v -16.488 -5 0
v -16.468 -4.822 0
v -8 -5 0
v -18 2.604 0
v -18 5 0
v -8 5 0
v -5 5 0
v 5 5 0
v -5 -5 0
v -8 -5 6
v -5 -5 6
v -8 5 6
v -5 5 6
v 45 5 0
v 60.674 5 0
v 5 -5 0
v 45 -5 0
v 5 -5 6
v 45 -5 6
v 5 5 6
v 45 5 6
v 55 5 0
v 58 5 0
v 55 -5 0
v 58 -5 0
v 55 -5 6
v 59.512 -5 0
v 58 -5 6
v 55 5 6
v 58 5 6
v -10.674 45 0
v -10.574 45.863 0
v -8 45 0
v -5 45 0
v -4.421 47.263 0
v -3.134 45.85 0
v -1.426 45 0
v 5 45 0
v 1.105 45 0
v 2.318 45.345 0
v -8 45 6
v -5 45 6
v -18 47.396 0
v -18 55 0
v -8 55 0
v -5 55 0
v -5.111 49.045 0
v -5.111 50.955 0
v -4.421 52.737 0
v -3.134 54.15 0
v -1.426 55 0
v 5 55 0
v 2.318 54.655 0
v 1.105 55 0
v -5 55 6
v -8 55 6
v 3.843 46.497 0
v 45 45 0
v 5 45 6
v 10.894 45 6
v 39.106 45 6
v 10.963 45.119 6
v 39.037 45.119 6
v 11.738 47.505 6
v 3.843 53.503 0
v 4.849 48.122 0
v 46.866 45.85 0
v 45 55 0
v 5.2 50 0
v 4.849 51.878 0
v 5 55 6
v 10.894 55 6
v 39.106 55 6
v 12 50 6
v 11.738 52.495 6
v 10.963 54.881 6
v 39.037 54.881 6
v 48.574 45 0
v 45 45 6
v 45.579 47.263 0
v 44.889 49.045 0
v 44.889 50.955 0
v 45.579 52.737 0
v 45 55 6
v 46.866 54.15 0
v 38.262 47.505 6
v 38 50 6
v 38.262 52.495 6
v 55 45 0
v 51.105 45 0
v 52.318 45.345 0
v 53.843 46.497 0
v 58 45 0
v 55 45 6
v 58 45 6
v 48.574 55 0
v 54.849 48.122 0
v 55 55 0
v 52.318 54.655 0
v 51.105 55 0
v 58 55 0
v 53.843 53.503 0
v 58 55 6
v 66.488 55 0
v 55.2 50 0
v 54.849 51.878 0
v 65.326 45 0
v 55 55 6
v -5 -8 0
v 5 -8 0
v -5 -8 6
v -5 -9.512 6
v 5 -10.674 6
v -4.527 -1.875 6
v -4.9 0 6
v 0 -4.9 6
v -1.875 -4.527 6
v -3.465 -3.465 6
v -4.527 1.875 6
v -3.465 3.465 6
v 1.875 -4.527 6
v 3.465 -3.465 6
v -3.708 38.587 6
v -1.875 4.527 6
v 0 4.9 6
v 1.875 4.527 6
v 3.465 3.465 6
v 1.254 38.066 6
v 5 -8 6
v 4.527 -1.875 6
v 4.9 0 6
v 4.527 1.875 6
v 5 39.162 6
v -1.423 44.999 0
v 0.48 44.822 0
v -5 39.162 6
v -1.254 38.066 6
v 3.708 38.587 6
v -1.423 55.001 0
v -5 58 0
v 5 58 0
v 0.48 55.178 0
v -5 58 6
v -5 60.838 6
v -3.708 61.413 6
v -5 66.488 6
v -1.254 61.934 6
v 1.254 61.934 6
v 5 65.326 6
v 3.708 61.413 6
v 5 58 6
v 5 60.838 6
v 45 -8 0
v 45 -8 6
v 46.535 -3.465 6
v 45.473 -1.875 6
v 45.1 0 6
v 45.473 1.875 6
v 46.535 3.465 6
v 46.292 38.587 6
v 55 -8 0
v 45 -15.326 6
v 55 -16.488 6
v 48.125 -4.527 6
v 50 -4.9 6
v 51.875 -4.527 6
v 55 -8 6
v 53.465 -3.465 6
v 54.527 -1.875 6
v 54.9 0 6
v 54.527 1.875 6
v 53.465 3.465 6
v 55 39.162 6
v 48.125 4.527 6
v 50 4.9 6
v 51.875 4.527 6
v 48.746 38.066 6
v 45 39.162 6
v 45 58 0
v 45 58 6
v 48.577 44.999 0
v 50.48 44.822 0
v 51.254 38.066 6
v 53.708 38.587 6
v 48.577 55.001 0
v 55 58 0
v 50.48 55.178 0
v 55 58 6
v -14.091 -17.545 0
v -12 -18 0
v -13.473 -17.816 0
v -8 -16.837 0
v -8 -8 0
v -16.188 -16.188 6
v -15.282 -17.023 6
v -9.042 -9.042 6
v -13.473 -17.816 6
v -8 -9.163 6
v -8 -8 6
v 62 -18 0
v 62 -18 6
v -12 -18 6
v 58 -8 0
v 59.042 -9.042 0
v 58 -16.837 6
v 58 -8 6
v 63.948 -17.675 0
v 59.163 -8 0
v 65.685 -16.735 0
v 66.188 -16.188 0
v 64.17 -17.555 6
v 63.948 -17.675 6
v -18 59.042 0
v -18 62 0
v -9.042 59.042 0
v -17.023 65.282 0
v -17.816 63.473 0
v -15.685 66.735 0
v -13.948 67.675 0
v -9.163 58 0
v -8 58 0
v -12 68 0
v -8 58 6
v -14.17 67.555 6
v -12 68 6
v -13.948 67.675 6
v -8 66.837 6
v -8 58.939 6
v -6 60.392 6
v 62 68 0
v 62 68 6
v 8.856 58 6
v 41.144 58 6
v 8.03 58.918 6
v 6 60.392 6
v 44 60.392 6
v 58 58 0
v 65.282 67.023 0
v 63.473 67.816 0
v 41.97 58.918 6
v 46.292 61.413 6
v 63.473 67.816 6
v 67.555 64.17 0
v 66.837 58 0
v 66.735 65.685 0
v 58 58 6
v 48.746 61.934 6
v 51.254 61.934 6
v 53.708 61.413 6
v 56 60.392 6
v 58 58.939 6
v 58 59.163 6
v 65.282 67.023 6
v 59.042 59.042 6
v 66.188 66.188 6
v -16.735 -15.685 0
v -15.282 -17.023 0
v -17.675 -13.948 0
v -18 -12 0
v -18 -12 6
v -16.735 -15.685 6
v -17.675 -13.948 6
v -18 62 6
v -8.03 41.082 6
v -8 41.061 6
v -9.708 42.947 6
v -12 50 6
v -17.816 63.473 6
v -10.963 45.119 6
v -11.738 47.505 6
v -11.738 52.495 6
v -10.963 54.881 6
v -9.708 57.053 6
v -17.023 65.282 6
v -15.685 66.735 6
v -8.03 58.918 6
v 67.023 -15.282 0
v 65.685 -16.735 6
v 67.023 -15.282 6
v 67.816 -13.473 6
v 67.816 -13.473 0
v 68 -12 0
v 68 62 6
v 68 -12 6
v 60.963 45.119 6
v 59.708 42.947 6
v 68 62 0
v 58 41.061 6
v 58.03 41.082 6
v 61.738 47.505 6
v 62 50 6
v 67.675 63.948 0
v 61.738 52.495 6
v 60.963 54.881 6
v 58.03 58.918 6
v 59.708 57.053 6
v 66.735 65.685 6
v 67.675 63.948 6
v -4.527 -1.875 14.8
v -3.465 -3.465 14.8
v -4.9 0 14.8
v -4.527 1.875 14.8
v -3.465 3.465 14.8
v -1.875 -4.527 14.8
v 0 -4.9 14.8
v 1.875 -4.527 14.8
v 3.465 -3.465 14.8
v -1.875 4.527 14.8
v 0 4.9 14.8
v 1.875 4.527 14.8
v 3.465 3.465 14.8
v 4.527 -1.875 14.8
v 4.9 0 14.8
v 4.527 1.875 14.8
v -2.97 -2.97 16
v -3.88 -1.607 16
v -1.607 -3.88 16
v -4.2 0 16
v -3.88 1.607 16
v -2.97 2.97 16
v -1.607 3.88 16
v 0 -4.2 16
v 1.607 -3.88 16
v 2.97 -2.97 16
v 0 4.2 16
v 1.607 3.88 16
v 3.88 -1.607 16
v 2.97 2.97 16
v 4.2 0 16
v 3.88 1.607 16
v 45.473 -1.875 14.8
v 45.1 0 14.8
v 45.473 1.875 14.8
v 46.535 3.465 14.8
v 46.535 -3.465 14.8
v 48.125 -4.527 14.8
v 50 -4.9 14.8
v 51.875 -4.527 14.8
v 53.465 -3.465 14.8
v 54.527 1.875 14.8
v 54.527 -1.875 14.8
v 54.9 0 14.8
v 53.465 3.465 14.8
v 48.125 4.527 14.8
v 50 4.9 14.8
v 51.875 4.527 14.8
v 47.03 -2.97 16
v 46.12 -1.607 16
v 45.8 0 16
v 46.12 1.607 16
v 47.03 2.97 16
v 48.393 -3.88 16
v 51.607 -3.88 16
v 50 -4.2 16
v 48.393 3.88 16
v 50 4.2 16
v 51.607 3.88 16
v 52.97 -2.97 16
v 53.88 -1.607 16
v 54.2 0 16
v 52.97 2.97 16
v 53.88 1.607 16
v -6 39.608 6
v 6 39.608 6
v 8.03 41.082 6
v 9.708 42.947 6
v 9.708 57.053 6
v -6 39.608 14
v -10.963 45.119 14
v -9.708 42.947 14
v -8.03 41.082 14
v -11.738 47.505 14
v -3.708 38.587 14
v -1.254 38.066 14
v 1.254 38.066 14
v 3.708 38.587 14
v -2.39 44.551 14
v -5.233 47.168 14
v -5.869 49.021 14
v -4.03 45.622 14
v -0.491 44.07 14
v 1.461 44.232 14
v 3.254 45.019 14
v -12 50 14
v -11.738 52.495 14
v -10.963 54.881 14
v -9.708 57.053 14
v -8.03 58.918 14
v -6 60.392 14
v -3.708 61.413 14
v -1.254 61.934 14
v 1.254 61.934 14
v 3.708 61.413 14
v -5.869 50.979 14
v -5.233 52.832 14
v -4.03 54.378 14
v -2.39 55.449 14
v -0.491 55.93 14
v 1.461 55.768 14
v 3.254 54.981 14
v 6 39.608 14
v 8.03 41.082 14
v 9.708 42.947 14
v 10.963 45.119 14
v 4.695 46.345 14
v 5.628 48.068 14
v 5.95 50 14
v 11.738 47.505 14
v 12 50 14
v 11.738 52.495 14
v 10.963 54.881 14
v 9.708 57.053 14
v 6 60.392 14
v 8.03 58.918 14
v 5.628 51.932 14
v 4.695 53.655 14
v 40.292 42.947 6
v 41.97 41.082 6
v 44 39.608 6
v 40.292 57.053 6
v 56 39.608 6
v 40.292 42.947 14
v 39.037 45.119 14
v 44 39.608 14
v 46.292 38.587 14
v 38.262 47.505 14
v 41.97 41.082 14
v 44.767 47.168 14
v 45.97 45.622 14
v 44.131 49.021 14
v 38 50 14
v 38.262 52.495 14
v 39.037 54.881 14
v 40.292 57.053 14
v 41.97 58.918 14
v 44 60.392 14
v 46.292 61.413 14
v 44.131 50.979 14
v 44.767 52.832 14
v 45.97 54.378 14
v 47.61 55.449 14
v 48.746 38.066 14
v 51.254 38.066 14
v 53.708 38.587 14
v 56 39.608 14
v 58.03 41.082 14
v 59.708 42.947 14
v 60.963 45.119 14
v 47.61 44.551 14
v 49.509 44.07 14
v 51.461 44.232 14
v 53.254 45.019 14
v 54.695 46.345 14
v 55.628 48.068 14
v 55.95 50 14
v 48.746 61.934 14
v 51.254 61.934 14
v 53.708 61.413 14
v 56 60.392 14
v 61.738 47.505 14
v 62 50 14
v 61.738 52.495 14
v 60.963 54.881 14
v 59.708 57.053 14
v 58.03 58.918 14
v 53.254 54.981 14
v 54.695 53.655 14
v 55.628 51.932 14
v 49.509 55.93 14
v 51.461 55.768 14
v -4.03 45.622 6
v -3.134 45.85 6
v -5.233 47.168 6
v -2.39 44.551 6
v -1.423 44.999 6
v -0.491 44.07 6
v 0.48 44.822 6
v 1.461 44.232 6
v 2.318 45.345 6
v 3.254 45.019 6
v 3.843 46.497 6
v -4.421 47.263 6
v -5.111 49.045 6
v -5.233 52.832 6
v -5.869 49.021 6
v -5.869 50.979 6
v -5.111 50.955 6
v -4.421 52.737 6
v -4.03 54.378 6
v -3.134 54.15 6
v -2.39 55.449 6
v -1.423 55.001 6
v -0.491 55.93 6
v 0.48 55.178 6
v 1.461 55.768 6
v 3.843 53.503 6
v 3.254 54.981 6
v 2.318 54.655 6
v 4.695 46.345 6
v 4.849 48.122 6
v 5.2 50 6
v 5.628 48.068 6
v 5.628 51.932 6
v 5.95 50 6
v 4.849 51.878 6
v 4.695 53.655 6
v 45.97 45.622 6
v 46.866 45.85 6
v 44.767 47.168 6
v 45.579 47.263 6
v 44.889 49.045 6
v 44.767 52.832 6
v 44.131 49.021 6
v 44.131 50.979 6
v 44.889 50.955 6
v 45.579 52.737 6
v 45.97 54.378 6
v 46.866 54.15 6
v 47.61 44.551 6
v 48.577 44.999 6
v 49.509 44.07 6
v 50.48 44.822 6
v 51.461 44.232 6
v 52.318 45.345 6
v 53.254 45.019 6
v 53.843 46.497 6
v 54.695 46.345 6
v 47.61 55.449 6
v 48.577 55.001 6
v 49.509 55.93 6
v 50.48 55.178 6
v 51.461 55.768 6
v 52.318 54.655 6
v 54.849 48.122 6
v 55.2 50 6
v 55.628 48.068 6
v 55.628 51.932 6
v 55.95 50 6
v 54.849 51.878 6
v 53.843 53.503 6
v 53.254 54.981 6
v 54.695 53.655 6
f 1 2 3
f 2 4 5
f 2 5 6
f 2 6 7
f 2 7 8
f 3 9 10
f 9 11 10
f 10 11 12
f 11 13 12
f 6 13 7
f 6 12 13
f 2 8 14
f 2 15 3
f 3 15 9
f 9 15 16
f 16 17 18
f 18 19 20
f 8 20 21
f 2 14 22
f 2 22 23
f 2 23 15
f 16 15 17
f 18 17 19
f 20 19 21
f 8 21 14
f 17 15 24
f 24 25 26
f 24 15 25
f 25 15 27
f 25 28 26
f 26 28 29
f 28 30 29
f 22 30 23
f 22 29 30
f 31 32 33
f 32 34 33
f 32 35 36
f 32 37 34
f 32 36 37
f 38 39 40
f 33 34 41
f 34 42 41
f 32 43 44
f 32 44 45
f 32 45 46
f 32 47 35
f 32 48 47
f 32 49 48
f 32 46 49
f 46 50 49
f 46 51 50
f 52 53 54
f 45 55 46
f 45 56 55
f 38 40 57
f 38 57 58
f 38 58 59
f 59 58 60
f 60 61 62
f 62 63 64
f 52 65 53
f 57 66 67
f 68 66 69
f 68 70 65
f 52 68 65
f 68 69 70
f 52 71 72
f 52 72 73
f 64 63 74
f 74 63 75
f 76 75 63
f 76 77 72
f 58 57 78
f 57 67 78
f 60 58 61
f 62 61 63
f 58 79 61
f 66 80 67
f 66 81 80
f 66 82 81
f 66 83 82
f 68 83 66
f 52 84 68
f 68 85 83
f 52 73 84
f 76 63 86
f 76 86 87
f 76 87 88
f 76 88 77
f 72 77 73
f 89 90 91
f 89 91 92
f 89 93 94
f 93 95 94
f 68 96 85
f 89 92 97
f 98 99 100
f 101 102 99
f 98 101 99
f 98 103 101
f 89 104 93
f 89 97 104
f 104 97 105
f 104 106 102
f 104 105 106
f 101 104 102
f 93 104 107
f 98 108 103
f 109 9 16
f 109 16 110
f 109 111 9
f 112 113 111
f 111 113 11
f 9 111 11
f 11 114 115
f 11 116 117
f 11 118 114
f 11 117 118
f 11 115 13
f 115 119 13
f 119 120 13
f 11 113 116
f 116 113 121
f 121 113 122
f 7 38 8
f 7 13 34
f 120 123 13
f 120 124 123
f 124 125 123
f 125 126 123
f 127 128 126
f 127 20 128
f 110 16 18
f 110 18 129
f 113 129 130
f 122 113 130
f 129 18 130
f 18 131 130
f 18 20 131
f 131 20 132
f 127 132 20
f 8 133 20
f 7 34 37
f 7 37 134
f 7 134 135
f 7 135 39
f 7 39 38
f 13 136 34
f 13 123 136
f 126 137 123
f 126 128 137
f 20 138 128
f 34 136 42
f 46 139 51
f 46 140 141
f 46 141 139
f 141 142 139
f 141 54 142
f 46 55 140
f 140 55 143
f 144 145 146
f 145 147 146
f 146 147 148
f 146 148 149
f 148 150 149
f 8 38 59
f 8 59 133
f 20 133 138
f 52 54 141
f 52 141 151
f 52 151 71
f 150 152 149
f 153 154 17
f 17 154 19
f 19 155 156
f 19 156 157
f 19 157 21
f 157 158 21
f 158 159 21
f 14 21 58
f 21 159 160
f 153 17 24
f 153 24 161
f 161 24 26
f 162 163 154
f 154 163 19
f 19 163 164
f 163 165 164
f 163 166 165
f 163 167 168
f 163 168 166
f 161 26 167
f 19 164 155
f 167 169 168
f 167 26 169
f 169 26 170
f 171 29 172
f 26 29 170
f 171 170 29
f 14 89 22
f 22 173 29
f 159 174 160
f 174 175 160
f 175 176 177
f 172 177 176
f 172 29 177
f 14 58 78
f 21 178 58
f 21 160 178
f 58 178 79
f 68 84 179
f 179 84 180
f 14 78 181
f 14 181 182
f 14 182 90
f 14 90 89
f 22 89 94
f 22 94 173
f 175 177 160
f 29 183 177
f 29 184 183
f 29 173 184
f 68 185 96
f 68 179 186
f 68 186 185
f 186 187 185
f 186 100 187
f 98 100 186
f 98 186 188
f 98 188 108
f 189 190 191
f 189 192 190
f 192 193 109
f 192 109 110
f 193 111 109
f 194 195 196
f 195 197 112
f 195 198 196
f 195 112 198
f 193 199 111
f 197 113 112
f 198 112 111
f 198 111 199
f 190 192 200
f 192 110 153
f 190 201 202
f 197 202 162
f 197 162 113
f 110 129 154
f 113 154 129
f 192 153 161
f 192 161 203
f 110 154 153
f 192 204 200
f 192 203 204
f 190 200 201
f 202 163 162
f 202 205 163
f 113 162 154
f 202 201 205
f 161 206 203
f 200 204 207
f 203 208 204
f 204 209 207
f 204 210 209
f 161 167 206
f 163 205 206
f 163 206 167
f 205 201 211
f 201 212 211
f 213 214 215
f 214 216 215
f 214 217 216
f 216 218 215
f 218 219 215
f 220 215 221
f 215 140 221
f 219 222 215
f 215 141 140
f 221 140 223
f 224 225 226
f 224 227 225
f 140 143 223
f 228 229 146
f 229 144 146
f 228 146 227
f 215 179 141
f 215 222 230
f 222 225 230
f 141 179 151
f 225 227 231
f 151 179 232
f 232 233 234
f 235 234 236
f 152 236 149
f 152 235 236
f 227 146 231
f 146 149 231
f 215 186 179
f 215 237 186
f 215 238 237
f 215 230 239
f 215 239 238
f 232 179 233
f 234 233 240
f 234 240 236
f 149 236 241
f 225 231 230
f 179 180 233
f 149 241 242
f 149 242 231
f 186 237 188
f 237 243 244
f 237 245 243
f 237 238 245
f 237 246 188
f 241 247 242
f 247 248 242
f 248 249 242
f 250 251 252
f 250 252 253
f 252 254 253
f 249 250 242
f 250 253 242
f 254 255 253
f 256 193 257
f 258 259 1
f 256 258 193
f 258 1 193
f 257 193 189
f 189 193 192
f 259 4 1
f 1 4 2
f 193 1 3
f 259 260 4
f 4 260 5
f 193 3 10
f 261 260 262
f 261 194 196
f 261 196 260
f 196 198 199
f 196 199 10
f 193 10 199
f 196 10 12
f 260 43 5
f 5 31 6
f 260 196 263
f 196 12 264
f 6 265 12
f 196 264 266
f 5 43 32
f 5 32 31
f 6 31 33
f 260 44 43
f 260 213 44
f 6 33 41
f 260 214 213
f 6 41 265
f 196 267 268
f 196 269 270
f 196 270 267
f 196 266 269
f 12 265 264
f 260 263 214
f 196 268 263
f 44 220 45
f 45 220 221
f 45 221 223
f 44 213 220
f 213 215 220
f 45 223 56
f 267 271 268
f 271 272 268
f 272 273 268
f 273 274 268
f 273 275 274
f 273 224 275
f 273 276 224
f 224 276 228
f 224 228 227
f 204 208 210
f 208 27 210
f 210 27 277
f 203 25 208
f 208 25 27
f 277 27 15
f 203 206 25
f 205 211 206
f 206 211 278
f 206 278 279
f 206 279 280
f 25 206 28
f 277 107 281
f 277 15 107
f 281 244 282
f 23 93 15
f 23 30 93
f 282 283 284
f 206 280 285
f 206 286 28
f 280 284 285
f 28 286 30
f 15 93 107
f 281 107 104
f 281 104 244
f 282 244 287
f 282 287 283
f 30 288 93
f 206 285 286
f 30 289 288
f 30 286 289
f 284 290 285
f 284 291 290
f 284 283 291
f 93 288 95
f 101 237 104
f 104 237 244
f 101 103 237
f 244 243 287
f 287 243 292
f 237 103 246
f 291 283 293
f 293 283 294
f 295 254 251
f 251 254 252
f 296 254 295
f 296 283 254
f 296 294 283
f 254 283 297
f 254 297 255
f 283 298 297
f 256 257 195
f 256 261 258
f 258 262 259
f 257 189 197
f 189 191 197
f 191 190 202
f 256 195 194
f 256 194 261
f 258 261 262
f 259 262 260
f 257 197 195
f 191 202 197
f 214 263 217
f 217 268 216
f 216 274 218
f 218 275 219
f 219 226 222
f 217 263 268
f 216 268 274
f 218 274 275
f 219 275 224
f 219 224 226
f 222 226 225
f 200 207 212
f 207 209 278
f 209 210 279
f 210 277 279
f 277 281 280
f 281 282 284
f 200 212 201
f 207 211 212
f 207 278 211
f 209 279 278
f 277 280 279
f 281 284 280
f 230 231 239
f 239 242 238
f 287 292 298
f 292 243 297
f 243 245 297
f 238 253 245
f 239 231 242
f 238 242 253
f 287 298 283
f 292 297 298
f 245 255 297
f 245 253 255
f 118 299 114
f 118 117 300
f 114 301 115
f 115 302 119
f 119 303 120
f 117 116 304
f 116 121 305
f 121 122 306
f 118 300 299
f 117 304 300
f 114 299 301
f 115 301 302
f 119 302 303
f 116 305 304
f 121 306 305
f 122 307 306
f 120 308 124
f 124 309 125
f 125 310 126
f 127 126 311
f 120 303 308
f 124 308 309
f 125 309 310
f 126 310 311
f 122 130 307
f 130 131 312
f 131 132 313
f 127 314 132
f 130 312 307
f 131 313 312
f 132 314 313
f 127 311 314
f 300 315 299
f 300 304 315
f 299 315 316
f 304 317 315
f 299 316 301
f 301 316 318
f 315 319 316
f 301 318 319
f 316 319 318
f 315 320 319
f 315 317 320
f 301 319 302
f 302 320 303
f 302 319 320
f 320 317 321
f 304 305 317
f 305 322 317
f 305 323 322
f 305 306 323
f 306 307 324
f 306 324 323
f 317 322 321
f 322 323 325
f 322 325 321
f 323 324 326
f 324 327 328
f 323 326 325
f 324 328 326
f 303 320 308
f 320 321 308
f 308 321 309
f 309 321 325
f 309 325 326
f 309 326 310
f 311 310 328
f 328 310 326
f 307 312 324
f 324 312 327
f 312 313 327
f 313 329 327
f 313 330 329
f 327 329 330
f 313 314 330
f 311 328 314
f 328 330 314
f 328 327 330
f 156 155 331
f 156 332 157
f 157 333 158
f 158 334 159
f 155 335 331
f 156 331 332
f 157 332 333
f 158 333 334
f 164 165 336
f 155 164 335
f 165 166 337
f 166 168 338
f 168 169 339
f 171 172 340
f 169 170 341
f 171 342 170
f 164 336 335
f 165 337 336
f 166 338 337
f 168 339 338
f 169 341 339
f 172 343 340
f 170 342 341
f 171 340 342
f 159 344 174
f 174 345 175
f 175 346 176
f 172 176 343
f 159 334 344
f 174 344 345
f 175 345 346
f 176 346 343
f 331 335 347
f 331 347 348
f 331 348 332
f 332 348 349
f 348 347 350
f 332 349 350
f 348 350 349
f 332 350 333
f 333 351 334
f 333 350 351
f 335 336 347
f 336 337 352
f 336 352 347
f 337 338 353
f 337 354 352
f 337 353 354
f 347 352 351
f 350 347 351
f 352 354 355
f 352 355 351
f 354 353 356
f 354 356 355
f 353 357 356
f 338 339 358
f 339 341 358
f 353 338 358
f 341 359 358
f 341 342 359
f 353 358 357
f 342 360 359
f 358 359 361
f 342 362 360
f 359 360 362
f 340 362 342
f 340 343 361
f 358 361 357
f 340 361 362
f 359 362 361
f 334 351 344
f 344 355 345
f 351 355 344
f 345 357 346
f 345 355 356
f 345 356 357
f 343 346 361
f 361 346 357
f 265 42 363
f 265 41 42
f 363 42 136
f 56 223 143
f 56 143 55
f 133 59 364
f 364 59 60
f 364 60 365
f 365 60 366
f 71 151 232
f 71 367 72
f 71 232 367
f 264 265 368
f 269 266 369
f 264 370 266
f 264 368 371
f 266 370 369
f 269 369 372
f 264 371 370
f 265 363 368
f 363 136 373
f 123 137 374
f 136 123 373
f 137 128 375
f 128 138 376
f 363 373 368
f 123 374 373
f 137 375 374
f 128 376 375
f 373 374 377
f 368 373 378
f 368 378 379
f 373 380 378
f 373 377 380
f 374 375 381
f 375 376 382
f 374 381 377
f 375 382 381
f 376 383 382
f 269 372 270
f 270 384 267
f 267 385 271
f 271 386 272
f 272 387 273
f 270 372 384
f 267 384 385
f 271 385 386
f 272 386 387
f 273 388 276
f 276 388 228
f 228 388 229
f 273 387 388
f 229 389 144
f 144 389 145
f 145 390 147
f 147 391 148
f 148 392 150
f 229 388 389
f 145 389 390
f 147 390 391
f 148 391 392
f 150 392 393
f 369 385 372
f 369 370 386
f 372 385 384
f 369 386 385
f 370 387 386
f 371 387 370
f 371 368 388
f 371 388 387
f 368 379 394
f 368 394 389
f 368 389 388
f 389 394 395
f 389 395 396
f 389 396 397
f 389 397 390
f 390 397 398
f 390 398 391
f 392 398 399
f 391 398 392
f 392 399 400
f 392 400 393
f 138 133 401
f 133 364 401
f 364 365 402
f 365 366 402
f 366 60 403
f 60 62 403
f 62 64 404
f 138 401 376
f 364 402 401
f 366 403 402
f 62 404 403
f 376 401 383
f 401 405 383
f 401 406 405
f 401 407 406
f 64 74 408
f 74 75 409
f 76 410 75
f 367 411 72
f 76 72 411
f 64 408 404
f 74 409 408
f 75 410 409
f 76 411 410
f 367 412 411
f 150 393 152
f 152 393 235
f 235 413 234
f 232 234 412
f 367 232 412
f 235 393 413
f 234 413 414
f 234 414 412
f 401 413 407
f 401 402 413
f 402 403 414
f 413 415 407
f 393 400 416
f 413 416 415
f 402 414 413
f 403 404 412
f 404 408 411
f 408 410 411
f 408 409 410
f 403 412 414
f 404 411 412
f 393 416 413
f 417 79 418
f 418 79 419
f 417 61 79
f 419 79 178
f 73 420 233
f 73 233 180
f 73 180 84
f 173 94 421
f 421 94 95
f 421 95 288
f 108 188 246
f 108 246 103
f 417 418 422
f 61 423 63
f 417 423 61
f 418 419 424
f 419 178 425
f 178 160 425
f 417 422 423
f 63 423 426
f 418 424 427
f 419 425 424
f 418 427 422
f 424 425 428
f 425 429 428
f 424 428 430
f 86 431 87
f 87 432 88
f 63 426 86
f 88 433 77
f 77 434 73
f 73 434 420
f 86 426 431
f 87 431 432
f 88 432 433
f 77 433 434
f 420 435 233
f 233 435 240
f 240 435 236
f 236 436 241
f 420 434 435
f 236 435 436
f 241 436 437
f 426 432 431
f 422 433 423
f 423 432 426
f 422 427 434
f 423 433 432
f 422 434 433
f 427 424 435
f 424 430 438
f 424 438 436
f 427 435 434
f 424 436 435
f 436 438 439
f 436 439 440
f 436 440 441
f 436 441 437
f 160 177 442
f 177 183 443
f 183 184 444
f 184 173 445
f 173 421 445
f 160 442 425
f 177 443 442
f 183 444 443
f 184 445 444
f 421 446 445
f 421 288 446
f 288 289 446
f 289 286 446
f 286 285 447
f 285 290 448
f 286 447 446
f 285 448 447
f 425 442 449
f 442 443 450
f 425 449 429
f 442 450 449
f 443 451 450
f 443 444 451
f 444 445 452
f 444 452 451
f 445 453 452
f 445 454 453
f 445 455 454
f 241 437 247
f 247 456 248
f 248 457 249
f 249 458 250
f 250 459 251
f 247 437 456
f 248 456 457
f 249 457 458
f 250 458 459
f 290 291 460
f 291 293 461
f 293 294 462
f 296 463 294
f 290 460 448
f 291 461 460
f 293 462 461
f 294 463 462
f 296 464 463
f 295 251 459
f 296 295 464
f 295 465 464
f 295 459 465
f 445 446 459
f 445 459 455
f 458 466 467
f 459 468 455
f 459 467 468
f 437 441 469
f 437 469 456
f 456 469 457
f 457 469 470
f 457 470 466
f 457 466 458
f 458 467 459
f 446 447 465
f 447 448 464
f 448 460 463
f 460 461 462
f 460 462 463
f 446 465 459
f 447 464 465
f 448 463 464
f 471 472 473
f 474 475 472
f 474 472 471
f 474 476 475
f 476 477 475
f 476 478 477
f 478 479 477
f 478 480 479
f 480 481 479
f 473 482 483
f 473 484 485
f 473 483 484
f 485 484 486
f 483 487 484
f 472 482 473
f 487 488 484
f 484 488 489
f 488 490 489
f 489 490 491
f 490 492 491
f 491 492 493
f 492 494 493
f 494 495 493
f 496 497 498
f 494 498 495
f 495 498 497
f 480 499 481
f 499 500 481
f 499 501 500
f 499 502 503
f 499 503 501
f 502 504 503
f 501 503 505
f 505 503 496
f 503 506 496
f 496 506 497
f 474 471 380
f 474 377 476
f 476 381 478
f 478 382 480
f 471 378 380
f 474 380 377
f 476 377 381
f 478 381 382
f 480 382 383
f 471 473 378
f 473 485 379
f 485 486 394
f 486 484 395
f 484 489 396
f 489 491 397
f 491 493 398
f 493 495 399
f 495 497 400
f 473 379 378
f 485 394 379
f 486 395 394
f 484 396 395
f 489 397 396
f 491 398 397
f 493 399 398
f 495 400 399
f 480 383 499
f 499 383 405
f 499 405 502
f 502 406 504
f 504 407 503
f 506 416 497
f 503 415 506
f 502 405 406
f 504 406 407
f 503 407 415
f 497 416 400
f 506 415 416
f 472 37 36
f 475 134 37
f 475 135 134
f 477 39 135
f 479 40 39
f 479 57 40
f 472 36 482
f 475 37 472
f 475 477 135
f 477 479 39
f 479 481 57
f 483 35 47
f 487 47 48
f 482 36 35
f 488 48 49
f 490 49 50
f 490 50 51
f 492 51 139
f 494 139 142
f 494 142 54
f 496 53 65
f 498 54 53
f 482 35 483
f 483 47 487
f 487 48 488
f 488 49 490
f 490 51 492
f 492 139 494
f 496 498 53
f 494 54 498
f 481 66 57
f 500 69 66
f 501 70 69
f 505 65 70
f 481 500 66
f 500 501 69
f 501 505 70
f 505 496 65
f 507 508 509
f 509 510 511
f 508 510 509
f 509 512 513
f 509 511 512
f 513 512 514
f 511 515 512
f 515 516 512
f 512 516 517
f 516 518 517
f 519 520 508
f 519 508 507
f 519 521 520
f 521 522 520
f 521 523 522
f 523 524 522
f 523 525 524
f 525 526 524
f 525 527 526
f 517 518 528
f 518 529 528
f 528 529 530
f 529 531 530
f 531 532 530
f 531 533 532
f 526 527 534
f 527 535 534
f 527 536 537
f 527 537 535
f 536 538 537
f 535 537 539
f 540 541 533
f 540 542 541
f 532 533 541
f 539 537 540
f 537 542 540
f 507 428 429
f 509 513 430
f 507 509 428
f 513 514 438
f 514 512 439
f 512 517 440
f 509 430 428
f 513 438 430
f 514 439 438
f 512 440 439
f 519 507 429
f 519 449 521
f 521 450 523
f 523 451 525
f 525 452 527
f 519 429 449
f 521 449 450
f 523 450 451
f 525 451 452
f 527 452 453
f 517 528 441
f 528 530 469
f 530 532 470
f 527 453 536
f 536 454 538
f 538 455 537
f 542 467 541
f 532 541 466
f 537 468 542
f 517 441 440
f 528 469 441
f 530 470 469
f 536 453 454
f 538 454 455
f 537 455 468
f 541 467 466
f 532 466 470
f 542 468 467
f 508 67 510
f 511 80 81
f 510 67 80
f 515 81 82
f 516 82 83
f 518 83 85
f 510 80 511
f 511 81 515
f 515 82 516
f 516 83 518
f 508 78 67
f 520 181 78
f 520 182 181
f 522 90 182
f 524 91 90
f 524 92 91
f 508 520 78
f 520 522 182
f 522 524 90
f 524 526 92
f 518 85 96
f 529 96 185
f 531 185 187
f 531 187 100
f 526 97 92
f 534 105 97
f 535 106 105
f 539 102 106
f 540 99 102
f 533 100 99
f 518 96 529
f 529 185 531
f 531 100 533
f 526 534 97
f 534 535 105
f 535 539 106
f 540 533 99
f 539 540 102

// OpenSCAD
// file: frame.scad
// ============================================================================
//  RIBBED FRAME HELPER — replaces a solid plate with border + grid ribs.
//  Same stiffness where it matters (bosses clamped flat), ~half the plastic.
// ============================================================================

rib_w    = 10;   // [mm] grid rib width
border_w = 10;   // [mm] perimeter border width

// Plan-view rounded rectangle prism — trims vertical edges to radius r.
// Inset polygon + offset(r) keeps the flat edges on x0/x1/y0/y1.
module rounded_outline(x0, y0, x1, y1, h, r = corner_r) {
    translate([0, 0, -0.05])
        linear_extrude(h + 0.1)
            offset(r = r)
                polygon([[x0 + r, y0 + r],
                         [x1 - r, y0 + r],
                         [x1 - r, y1 - r],
                         [x0 + r, y1 - r]]);
}

// Rounded box helper for external edges. Keep radii small to preserve fits.
module rounded_box(size, r = edge_break) {
    // 2D rounded footprint extruded to preserve exact outer dimensions.
    translate([0,0,-size[2]/2]) linear_extrude(size[2])
        offset(r=r) square([size[0]-2*r,size[1]-2*r],center=true);
}

// x0,y0,x1,y1 = plate extent; xs/ys = station coordinates the ribs run through
module rib_plate(x0, y0, x1, y1, xs, ys) {
    intersection() {
        union() {
        // border ring
        translate([(x0+x1)/2, y0+border_w/2, base_t/2]) rounded_box([x1-x0,border_w,base_t]);
        translate([(x0+x1)/2, y1-border_w/2, base_t/2]) rounded_box([x1-x0,border_w,base_t]);
        translate([x0+border_w/2, (y0+y1)/2, base_t/2]) rounded_box([border_w,y1-y0,base_t]);
        translate([x1-border_w/2, (y0+y1)/2, base_t/2]) rounded_box([border_w,y1-y0,base_t]);
        // ribs through each station row/column
        for (y = ys)
            translate([(x0+x1)/2, y, base_t/2])
                rounded_box([x1-x0, rib_w, base_t]);
        for (x = xs)
            translate([x, (y0+y1)/2, base_t/2])
                rounded_box([rib_w, y1-y0, base_t]);
        }
        rounded_outline(x0, y0, x1, y1, base_t);
    }
}

module pin_post(x, y) {
    translate([x, y, base_t - pin_embed]) {
        cylinder(d = pin_d, h = pin_embed + pin_len - chamfer_h);
        translate([0, 0, pin_embed + pin_len - chamfer_h])
            cylinder(d1 = pin_d, d2 = pin_d - 2 * chamfer_d, h = chamfer_h);
    }
}

module guide_boss(x, y) {
    translate([x, y, base_t])
        cylinder(d = boss_od, h = boss_h);
}

module guide_bores(x, y) {
    translate([x, y, base_t + boss_h - bush_seat_h])
        cylinder(d = bush_hole_d, h = bush_seat_h + 0.02);
    translate([x, y, -0.01])
        cylinder(d = bit_clear_d, h = base_t + boss_h + 0.02);
}
// file: params.scad
// ============================================================================
//  SHARED PARAMETERS — pegboard jig print set
//  10mm holes on a 50mm grid, 18mm plywood, first hole 25mm from each edge.
//  Include this file in every part so dimensions stay in sync.
// ============================================================================

pitch        = 50;    // [mm] grid spacing
hole_d       = 10;    // [mm] drilled hole / bit size (reference)
edge_offset  = 25;    // [mm] first hole centre from each edge
panel_t      = 18;    // [mm] plywood thickness (fence reach below z=0)

// Locating pins — drop into drilled holes. All pin parts print PINS-UP.
pin_d      = 9.8;     // snug in a 10mm hole (9.9 tighter, 9.5 looser)
pin_len    = 10;      // engagement depth
pin_embed  = 3;       // root embedded in the base
chamfer_h  = 1.2;
chamfer_d  = 0.7;

// Drill guides — 12mm OD / 10mm ID metal bush press fit
bush_hole_d  = 11.9;  // press-fit seat (11.7 tighter, 12.1 slip+glue)
bit_clear_d  = 10.4;  // 0.2mm/side clearance
bush_seat_h  = 8;
boss_od      = 24;
boss_h       = 8;

// Base plates
base_t       = 6;
margin       = boss_od / 2 + 6;   // plate margin around stations

// Fence joint — must match between plate notches and fence tabs
notch_d      = 8.4;
notch_w      = 12;
tab_w        = 10;
tab_t        = 4.4;
tab_z0       = 0.3;
tab_in       = 8;
tab_frac     = [0.18, 0.5, 0.82];
fence_t      = 4;
fence_top    = 14;
clamp_gap    = 25;
edge_margin  = 15;
clamp_hole_d = 6;

// Edge rounding — plan-view corner radius, helps high-speed printing
corner_r     = 6;      // [mm] on plates / rib frames
corner_r_s   = 3;      // [mm] on small parts (carriage, inserts)
edge_break   = 0.8;    // [mm] small chamfer on exposed vertical-part edges

// Fence→plate screws — horizontal M3 self-tappers through the fence
// wall into the plate edge band, in the solid gaps between notches.
// Shared by plate (pilot) and fence (through) so positions always match.
screw_d       = 3;      // [mm] M3
screw_clear   = 3.4;    // through-hole Ø in the fence wall
screw_pilot   = 2.4;    // pilot hole Ø into the plate edge
screw_depth   = 9.5;    // pilot depth — stays inside the 10mm border band
screw_z       = 3;      // hole centre height (mid plate thickness)
screw_min_gap = 10;     // smallest solid edge interval that takes a screw

// Solid intervals along a fence edge = reach minus the notch pockets.
// Returns centre positions for the screw holes (same on both parts).
function screw_stations(reach, tab_pos) =
    let(
        flat   = [for (c = tab_pos, e = [-notch_w / 2, notch_w / 2]) c + e],
        bounds = concat([0], flat, [reach]),
        pairs  = [for (i = [0 : 2 : len(bounds) - 2])
                      [bounds[i], bounds[i + 1]]]
    )
    [for (p = pairs) if (p[1] - p[0] >= screw_min_gap)
        (p[0] + p[1]) / 2];
// main file
// ============================================================================
//  ROW BRIDGE — Proposals 1 & 2, ribbed version
//  Two pins at (0,0),(50,0) reference the finished row;
//  two guides at (0,50),(50,50) drill the next row. Rotate for columns.
//  PRINT: as modelled — pins point UP (they point down in use). No supports.
// ============================================================================
include <params.scad>
include <frame.scad>

pins   = [[0, 0], [pitch, 0]];
guides = [[0, pitch], [pitch, pitch]];
x0 = -margin; x1 = pitch + margin;      // -18 .. 68  (86mm)
y0 = -margin; y1 = pitch + margin;

module row_bridge() {
    difference() {
        union() {
            rib_plate(x0, y0, x1, y1, [0, pitch], [0, pitch]);
            for (p = pins) pin_post(p[0], p[1]);
            for (g = guides) guide_boss(g[0], g[1]);
        }
        for (g = guides) guide_bores(g[0], g[1]);
    }
}

row_bridge();
